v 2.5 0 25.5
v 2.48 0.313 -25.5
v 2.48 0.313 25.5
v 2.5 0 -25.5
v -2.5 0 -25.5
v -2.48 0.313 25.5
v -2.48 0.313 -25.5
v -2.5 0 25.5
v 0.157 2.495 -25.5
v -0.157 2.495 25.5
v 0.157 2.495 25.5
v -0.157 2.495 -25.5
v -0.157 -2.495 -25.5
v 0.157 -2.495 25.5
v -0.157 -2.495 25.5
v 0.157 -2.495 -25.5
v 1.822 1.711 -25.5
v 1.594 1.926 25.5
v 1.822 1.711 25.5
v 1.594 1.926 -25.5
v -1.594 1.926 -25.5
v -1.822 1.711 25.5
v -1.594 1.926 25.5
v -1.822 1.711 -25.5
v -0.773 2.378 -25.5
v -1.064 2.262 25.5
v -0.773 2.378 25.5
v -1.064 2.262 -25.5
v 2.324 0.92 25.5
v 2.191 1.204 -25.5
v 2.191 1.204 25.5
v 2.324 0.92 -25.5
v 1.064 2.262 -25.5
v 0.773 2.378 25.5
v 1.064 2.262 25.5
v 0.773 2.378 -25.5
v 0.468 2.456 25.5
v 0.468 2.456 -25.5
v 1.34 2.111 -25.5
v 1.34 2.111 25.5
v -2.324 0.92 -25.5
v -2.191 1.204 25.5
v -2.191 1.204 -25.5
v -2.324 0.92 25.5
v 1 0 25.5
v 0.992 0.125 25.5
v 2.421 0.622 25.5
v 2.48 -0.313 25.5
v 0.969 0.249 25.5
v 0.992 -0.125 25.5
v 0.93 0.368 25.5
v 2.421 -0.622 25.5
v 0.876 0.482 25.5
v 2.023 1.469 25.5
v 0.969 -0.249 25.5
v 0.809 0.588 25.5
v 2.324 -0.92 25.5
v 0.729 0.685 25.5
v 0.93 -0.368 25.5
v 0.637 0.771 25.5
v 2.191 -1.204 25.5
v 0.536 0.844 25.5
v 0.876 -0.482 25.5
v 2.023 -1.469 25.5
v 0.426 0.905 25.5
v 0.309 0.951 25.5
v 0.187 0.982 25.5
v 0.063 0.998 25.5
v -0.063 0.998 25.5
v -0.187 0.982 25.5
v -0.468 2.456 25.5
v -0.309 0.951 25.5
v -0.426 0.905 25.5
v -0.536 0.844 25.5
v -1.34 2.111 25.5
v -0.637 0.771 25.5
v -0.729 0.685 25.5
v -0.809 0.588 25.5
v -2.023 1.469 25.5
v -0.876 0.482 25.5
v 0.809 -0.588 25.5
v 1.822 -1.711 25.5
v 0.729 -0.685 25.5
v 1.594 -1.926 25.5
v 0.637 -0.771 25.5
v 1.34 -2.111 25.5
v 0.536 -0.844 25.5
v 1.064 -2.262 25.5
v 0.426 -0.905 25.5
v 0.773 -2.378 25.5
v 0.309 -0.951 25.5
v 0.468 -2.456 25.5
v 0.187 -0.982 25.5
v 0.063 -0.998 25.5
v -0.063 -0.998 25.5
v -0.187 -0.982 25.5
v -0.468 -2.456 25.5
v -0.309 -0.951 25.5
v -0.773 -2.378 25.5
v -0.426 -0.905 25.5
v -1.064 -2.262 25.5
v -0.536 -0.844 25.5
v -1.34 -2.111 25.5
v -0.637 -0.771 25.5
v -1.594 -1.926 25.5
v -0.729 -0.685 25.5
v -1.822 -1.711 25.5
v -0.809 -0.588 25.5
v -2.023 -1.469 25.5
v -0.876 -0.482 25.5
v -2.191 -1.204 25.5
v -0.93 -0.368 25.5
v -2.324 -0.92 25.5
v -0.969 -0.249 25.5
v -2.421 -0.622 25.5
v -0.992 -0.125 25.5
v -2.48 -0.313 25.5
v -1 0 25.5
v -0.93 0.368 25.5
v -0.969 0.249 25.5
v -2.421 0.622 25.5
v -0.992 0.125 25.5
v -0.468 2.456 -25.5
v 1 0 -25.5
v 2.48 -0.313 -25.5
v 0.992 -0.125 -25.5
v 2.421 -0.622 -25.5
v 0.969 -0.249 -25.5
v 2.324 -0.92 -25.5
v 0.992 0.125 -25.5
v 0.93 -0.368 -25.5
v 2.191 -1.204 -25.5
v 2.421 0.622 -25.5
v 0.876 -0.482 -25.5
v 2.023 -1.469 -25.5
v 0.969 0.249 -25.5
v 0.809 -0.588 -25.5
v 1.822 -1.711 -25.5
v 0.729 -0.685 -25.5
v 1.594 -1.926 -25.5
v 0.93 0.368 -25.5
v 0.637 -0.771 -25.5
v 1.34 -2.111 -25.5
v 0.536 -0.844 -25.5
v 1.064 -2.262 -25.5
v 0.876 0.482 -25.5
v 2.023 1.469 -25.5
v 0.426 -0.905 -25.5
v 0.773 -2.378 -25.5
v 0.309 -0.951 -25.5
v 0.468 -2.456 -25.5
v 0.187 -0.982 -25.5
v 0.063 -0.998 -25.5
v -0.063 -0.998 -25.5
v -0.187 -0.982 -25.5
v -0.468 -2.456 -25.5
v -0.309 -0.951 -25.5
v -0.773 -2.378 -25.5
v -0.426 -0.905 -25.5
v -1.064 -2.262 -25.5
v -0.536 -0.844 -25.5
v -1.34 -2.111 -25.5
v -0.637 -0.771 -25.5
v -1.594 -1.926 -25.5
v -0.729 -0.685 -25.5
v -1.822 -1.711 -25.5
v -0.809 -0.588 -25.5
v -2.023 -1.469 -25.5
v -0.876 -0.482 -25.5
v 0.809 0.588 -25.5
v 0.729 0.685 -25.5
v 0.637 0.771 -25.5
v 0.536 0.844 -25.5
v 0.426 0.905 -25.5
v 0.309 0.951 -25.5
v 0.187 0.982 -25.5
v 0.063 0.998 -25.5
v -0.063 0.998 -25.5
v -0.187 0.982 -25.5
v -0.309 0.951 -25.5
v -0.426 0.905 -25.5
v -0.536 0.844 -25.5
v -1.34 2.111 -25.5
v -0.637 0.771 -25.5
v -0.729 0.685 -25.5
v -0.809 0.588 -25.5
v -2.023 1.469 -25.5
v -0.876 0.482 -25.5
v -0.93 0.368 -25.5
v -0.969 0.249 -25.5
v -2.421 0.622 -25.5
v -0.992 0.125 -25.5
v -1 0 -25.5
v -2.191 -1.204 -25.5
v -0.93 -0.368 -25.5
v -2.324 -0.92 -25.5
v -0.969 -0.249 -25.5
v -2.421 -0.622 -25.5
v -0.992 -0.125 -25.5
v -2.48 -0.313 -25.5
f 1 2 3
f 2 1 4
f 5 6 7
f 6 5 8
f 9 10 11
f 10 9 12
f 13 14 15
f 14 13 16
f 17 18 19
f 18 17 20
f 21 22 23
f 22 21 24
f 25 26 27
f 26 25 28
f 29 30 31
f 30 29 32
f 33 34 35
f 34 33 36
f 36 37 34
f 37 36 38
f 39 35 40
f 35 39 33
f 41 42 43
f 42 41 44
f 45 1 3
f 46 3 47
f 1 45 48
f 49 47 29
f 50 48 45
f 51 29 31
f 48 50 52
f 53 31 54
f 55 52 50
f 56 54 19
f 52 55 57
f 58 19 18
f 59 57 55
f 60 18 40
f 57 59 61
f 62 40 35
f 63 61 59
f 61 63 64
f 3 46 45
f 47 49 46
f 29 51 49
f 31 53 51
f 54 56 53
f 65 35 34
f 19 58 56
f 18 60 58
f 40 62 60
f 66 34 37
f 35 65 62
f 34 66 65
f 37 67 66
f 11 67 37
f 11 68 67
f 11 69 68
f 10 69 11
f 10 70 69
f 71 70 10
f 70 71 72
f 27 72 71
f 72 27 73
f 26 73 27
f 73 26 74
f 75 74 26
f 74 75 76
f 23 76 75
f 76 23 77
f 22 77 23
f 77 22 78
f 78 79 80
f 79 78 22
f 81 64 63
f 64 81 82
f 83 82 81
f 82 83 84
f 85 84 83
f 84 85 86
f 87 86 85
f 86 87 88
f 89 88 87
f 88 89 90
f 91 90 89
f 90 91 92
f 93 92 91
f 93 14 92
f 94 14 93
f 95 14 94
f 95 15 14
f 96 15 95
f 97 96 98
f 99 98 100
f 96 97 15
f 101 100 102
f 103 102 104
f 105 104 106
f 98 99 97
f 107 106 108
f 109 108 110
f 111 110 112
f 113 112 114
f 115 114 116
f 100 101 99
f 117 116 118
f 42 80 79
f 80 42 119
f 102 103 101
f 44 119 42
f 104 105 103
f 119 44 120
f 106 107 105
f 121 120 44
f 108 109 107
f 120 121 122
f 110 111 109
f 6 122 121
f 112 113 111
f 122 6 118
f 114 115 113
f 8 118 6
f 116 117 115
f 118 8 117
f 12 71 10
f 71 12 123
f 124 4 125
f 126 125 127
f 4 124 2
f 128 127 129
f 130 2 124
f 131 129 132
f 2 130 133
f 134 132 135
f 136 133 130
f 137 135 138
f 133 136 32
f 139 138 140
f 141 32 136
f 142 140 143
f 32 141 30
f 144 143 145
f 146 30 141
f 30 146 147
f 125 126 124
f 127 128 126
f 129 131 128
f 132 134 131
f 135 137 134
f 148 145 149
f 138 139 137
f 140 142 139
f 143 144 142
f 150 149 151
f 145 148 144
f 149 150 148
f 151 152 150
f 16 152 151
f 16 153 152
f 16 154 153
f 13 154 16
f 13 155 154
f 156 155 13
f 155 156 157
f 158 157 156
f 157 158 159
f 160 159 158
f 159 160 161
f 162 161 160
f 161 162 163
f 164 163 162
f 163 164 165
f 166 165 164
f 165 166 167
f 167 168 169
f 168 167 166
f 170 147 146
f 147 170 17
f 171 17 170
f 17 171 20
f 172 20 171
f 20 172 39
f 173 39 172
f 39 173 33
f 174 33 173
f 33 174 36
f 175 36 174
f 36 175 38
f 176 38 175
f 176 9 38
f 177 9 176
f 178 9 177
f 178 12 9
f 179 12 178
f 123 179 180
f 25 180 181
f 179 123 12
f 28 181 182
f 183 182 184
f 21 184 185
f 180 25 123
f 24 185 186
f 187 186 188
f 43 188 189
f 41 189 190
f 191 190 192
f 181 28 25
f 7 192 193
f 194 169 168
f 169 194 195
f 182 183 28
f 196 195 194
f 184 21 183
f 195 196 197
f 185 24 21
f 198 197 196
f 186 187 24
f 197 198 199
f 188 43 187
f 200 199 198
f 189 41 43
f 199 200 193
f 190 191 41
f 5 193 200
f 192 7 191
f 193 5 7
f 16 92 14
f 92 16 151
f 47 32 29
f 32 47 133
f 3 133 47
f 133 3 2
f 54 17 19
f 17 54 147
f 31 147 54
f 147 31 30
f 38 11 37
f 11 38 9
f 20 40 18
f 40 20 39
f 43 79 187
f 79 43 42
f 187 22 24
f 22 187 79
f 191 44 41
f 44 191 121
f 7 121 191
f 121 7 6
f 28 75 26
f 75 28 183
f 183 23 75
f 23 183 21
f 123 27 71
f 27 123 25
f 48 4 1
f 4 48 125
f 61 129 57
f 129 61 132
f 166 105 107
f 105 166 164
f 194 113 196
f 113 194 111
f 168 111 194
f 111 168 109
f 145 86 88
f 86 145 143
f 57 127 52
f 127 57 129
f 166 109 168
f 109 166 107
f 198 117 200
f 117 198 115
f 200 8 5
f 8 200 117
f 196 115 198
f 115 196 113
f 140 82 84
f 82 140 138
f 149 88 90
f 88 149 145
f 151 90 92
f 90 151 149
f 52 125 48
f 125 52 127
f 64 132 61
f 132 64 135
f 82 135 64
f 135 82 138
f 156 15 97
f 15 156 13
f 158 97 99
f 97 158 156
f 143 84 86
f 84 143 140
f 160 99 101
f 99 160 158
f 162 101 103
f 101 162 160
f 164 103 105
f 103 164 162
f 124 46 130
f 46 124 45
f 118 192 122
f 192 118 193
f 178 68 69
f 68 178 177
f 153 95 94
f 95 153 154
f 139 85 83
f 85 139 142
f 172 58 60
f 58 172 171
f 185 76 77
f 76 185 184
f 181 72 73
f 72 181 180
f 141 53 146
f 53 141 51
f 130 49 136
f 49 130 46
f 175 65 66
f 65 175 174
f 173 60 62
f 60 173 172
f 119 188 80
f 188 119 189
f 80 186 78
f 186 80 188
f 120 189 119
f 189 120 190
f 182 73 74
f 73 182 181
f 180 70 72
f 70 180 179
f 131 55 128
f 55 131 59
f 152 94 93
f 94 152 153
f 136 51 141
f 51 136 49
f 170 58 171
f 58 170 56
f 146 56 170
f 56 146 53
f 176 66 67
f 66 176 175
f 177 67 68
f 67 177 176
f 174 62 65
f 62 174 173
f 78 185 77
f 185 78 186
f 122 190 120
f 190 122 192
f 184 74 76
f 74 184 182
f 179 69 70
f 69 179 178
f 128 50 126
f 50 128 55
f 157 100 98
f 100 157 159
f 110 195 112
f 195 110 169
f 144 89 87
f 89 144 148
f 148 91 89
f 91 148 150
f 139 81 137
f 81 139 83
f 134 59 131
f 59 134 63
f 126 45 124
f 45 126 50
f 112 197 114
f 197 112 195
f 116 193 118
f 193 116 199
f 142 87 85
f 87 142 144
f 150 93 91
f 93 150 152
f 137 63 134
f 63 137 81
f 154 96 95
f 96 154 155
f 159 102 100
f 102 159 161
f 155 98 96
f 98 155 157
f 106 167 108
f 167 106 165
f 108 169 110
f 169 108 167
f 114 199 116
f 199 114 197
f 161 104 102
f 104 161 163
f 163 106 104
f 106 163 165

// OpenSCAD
$fn = 50;


difference() {
	union() {
		translate(v = [0, 0, -25.5000000000]) {
			cylinder(h = 51, r = 2.5000000000);
		}
	}
	union() {
		translate(v = [0, 0, -100.0000000000]) {
			cylinder(h = 200, r = 1.0000000000);
		}
	}
}
